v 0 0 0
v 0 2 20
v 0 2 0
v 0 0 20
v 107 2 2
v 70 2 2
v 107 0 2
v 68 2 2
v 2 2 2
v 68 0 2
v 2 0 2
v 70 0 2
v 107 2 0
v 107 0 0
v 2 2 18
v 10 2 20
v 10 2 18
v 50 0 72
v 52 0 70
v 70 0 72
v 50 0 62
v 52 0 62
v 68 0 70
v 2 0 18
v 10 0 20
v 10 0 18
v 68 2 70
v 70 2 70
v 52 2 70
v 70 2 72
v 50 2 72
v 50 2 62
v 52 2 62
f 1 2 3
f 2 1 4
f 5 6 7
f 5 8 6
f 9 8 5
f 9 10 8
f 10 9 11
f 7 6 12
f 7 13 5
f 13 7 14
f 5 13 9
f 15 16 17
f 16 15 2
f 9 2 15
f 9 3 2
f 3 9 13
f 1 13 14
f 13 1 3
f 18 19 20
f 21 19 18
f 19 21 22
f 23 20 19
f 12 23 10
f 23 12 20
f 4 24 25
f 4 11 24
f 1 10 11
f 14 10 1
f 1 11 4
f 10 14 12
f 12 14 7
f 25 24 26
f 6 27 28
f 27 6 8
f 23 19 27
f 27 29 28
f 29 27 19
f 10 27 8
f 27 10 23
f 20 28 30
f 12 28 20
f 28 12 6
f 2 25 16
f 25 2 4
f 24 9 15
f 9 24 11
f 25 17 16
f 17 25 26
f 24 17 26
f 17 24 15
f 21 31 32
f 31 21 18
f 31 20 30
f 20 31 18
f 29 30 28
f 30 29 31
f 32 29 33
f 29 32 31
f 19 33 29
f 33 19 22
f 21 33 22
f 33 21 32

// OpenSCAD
module GlassesCaseStand(caseWidth = 70, standWidth = 20, thickness = 2, hookBack = 20)
{
    cube([caseWidth * 1.5 + thickness, standWidth,thickness]);

    rotate([0, 0, 90])
    translate([0, -caseWidth, 0])
    cube([standWidth, thickness, caseWidth]);

    cube([thickness, standWidth, hookBack]);

    translate([thickness, 0, hookBack - thickness])
    cube([hookBack * 2 / 5, standWidth, thickness]);

    translate([caseWidth - hookBack, 0, caseWidth])
    cube([hookBack, standWidth, thickness]);

    translate([caseWidth - hookBack, 0, caseWidth - hookBack * 2 / 5])
    cube([thickness, standWidth, hookBack * 2 / 5]);
}

GlassesCaseStand(standWidth = 2);
